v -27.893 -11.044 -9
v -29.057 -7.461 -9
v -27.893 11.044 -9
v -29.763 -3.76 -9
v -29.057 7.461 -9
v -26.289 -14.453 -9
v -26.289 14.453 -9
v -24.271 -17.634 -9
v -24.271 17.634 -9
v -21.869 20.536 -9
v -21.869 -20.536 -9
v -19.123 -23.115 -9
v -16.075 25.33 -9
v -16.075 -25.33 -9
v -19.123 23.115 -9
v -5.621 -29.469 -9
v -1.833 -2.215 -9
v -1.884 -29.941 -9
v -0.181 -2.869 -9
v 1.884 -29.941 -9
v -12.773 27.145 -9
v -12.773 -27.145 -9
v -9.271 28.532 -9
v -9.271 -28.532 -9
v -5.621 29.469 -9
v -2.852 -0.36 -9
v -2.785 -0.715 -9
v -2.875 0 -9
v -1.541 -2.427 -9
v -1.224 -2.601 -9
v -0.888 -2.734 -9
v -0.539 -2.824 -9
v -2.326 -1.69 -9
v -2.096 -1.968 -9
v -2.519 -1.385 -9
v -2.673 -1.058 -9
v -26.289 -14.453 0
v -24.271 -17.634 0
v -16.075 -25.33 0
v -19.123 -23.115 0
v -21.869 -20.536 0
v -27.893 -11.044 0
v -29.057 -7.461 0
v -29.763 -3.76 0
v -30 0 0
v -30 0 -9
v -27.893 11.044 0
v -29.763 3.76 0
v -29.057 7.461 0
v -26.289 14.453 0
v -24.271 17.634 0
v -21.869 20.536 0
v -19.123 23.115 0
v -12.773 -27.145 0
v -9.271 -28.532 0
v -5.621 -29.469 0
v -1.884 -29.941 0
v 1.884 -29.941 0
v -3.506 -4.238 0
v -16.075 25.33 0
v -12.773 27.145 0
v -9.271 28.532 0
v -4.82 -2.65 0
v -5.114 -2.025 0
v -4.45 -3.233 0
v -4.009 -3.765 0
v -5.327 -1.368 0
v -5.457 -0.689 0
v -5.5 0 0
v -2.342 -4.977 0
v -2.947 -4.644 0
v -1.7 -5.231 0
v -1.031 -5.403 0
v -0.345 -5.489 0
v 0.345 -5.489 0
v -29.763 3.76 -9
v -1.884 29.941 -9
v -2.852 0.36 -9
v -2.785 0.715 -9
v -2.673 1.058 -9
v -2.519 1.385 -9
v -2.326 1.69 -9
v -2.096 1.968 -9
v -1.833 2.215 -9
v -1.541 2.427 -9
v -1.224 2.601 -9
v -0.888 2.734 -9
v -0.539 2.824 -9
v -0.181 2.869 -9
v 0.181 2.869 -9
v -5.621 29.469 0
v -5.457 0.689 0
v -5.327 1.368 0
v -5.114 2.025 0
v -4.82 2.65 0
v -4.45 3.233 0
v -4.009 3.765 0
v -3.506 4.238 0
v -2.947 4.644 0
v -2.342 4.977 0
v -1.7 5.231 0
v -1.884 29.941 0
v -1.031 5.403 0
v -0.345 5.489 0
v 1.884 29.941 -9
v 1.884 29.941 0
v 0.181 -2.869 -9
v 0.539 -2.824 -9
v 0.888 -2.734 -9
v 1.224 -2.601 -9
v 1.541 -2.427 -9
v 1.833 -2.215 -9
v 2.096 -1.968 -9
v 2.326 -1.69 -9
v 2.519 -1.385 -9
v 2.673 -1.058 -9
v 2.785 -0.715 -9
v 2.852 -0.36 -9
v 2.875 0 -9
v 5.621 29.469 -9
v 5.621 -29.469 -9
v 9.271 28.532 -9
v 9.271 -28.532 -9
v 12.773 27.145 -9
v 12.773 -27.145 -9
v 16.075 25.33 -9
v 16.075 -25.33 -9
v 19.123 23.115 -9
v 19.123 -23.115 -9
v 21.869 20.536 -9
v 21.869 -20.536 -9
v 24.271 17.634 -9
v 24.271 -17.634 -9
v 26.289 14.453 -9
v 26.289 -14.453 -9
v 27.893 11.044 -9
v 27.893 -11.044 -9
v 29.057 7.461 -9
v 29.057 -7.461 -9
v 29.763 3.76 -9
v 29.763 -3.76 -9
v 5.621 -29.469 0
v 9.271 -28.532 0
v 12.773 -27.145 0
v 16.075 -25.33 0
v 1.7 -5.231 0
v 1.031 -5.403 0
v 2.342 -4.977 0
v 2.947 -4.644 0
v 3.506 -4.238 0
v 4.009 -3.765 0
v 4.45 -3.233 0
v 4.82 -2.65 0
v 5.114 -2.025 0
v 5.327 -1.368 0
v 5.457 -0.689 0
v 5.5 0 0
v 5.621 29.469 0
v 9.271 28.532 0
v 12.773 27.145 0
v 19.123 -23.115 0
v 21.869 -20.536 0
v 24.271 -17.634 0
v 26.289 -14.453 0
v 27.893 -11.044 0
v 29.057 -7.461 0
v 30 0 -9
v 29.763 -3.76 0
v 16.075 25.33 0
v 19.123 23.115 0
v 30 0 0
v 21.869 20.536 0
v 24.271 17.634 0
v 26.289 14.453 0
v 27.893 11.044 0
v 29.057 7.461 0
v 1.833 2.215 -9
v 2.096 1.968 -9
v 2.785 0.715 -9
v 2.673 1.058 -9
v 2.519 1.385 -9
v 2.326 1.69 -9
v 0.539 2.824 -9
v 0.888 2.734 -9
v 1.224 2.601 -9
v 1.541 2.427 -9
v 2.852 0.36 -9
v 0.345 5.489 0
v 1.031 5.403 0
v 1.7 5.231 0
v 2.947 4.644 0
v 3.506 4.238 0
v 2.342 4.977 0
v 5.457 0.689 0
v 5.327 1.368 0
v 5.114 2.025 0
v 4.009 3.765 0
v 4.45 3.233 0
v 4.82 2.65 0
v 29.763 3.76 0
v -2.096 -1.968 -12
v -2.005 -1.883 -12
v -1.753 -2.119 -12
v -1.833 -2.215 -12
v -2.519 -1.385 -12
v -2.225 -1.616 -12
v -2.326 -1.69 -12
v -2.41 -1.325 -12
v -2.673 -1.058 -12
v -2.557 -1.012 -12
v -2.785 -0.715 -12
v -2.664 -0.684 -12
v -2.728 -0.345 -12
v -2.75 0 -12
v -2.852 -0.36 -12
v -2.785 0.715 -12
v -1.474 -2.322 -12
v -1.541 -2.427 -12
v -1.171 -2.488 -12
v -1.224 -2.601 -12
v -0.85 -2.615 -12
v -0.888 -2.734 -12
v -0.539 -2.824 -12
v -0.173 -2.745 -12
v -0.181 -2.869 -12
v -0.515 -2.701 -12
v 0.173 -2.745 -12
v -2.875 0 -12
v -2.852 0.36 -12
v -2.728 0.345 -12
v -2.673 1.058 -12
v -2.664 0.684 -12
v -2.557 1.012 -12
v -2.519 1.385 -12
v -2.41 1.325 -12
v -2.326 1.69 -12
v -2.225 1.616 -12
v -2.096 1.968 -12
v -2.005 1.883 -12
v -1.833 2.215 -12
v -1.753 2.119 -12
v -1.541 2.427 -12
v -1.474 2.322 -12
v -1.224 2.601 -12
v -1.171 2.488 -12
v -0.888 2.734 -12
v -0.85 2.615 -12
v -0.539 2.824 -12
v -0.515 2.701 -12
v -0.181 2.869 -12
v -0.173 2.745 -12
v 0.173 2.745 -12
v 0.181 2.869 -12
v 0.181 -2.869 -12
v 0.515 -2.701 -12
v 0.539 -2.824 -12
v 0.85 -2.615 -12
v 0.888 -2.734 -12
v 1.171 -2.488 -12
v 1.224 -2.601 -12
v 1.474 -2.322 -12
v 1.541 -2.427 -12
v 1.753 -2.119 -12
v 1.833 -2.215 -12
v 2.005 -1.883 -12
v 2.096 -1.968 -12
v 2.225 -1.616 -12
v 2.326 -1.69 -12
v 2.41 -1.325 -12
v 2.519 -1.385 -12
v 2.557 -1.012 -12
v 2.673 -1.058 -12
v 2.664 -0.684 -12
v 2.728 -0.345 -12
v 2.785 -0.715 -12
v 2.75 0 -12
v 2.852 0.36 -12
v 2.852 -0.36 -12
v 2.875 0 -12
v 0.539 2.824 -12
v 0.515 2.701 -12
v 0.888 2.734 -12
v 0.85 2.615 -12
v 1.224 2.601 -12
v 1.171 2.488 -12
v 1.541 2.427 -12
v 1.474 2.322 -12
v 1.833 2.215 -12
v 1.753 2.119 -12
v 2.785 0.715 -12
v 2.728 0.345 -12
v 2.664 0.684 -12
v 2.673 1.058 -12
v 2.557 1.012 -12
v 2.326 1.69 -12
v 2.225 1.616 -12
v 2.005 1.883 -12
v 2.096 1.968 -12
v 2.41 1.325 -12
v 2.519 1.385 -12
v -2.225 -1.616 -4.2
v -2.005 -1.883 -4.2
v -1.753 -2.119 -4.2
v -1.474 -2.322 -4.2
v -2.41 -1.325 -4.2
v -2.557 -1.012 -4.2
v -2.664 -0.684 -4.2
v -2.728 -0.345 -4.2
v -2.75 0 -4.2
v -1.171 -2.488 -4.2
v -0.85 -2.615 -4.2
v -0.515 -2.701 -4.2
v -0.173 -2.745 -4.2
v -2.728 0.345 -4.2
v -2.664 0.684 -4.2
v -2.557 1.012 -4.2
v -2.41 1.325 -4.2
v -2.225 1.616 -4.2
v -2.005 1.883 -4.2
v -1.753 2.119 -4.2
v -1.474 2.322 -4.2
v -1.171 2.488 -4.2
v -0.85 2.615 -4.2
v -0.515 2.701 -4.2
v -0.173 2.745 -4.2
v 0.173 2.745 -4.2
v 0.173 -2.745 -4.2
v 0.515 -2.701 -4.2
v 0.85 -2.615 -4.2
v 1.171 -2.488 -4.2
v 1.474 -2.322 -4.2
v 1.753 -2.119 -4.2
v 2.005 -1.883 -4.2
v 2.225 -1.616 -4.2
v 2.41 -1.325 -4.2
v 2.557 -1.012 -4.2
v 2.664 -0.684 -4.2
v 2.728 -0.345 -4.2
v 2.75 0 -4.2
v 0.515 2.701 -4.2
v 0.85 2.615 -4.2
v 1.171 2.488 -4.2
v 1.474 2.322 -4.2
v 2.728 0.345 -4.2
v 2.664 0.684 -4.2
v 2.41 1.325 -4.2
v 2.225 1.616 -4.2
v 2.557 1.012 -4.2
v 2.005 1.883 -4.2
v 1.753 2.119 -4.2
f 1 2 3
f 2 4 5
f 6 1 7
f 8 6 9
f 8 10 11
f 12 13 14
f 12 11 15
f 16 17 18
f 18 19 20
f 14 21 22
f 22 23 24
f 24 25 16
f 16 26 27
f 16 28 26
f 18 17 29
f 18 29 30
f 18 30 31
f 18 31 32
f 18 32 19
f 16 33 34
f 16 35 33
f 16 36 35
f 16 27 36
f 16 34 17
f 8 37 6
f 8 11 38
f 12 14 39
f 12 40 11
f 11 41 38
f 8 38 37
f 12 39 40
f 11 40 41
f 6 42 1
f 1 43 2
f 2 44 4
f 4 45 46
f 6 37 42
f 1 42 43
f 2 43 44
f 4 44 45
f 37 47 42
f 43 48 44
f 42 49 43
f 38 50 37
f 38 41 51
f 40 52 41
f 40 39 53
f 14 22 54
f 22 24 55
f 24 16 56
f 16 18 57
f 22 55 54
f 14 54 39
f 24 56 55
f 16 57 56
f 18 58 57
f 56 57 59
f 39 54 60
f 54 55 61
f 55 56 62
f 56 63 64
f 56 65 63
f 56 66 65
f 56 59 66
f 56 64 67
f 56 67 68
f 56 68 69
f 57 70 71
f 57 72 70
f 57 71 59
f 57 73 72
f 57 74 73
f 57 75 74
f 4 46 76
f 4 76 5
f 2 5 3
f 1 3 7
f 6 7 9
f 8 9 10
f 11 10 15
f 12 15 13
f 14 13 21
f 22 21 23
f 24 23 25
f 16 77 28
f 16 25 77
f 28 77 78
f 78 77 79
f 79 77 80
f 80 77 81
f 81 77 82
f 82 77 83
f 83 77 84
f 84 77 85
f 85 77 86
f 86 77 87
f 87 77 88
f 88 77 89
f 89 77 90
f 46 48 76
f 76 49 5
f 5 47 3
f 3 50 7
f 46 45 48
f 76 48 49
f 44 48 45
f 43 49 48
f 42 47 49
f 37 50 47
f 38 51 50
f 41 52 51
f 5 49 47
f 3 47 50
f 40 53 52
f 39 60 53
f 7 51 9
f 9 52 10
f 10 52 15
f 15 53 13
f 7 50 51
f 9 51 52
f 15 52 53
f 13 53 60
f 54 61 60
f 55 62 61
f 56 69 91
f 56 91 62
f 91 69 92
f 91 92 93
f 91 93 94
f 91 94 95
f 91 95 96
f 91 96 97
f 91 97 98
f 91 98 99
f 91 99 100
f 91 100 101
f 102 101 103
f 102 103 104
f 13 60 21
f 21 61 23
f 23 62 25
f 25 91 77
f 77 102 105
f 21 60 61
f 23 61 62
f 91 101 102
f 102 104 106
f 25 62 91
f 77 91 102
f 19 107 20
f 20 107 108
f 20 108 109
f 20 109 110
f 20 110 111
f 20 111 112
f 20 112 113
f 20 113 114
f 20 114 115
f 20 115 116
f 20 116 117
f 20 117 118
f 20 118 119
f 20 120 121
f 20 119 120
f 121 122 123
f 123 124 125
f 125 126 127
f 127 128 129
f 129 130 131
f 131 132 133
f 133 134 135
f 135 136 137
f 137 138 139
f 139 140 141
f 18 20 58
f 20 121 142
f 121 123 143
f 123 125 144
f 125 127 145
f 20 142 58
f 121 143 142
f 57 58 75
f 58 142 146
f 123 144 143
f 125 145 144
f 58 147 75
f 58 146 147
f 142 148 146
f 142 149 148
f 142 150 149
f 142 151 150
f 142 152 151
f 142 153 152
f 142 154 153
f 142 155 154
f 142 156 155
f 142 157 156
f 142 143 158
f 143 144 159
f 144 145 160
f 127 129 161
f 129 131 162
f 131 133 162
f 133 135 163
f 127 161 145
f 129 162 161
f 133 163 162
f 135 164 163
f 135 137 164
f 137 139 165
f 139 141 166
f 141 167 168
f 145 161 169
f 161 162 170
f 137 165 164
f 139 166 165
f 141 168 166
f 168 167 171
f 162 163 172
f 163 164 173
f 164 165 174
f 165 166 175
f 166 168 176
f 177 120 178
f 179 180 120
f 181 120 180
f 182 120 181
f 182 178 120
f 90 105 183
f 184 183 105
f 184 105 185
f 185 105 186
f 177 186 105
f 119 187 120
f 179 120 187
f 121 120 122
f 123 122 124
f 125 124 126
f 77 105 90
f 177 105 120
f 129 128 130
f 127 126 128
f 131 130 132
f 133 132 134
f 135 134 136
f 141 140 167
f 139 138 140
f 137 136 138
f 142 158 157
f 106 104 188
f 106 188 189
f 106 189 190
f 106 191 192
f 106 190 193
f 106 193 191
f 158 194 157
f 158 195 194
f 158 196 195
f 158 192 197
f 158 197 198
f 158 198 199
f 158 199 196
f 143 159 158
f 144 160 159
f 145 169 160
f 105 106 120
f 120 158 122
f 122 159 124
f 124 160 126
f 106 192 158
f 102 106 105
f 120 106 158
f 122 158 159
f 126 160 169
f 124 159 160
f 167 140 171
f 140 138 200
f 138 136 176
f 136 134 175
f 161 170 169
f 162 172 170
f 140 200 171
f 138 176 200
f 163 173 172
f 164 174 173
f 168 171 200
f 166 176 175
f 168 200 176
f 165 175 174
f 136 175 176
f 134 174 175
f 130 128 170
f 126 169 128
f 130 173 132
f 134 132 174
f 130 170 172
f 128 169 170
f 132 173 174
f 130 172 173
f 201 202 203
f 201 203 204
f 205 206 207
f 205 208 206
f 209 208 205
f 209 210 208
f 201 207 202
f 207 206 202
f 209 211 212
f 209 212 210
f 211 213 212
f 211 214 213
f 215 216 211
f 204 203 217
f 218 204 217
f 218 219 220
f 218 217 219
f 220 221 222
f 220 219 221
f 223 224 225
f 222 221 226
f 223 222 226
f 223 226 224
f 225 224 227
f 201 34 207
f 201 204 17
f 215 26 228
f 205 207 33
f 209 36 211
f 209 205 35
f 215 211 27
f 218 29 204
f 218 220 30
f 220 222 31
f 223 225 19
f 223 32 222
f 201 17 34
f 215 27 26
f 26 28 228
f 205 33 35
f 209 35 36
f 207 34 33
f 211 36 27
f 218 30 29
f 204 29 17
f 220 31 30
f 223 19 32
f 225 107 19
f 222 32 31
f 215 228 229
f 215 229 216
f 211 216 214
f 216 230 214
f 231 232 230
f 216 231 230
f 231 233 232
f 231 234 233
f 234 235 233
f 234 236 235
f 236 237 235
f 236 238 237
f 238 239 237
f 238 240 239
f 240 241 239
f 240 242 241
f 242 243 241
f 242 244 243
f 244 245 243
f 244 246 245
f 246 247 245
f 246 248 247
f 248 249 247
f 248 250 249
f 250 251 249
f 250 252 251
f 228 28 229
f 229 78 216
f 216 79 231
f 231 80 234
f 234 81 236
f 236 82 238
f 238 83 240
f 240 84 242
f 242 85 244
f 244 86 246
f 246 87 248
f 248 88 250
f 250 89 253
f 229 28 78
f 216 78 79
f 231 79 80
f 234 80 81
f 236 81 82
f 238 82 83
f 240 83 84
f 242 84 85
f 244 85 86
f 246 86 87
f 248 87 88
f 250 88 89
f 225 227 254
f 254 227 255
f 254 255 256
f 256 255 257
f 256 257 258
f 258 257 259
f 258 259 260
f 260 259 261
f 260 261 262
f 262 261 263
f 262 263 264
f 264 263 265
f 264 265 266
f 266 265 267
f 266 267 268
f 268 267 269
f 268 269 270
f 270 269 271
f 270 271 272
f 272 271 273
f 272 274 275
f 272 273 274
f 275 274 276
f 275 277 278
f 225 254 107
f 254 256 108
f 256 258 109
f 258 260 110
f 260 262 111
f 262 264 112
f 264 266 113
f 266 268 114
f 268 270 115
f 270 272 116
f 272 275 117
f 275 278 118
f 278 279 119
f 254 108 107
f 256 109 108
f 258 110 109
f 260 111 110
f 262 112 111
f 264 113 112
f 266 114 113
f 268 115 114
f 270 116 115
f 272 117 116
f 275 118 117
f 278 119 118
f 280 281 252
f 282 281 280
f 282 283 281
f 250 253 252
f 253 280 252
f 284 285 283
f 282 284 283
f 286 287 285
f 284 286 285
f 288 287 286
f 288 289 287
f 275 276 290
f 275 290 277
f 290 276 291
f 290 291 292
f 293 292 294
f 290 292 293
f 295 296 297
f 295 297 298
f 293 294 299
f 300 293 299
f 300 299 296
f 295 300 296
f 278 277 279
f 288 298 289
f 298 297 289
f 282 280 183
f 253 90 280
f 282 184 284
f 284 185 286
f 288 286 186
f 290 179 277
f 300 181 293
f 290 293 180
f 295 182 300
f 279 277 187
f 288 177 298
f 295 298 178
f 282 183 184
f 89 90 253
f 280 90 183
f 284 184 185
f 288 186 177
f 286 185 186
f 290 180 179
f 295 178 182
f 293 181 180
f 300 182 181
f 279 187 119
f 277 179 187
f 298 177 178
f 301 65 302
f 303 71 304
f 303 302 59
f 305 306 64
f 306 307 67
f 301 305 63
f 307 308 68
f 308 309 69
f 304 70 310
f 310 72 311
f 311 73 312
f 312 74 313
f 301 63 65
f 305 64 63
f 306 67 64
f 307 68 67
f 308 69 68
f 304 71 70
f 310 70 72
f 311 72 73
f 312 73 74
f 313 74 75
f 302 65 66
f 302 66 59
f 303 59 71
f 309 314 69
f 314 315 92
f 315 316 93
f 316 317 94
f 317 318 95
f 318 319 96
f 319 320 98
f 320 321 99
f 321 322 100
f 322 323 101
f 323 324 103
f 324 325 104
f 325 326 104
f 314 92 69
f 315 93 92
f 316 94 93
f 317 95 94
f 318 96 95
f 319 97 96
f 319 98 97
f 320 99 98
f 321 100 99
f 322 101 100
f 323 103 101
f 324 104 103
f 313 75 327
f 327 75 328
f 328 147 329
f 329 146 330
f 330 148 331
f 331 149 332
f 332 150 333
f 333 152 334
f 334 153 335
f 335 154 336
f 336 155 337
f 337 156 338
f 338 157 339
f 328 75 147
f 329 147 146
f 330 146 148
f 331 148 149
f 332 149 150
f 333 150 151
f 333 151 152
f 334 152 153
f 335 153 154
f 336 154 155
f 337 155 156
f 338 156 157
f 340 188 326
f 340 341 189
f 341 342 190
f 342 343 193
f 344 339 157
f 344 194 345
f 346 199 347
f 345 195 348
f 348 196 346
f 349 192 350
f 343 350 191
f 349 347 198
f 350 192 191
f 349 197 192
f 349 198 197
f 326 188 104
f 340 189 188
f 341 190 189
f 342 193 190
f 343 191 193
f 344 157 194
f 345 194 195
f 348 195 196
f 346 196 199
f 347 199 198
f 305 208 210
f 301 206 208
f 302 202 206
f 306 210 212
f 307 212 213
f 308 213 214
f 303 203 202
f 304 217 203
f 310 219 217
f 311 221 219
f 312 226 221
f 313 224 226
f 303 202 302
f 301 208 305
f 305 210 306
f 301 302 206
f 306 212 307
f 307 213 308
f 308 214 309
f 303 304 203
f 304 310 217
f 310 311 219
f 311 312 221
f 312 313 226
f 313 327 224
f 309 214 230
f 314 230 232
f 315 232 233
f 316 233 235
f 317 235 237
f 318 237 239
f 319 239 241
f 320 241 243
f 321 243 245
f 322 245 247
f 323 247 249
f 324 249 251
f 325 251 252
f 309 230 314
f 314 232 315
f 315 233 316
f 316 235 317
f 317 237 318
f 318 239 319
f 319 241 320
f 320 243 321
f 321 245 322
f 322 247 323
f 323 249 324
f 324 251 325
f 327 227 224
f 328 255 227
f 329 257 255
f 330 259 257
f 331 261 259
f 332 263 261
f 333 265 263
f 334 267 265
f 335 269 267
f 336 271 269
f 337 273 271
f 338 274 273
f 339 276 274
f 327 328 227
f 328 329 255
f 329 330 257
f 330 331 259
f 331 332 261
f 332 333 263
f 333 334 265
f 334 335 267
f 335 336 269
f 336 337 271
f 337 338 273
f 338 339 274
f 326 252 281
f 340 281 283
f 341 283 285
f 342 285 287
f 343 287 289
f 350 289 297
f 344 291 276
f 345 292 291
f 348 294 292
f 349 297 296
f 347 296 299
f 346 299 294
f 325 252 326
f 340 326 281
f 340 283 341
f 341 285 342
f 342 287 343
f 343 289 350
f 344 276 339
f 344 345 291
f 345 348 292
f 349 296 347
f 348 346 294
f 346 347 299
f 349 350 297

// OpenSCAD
$fn = 50;

difference() {
	union() {
		translate(v = [0, 0, -9.0]) {
			cylinder(h = 9, r = 30.0);
		}
		#translate(v = [0, 0, -12.0]) {
			cylinder(h = 12, r = 2.875);
		}
	}
	union() {
		translate(v = [0, 0, 0]) {
			rotate(a = [0, 0, 0]) {
				difference() {
					union() {
						translate(v = [0, 0, -12.0]) {
							cylinder(h = 12, r = 2.25);
						}
						translate(v = [0, 0, -4.2]) {
							cylinder(h = 4.2, r1 = 2.75, r2 = 5.5);
						}
						translate(v = [0, 0, -12.0]) {
							cylinder(h = 12, r = 2.75);
						}
						translate(v = [0, 0, -12.0]) {
							cylinder(h = 12, r = 2.25);
						}
					}
					union();
				}
			}
		}
	}
}
